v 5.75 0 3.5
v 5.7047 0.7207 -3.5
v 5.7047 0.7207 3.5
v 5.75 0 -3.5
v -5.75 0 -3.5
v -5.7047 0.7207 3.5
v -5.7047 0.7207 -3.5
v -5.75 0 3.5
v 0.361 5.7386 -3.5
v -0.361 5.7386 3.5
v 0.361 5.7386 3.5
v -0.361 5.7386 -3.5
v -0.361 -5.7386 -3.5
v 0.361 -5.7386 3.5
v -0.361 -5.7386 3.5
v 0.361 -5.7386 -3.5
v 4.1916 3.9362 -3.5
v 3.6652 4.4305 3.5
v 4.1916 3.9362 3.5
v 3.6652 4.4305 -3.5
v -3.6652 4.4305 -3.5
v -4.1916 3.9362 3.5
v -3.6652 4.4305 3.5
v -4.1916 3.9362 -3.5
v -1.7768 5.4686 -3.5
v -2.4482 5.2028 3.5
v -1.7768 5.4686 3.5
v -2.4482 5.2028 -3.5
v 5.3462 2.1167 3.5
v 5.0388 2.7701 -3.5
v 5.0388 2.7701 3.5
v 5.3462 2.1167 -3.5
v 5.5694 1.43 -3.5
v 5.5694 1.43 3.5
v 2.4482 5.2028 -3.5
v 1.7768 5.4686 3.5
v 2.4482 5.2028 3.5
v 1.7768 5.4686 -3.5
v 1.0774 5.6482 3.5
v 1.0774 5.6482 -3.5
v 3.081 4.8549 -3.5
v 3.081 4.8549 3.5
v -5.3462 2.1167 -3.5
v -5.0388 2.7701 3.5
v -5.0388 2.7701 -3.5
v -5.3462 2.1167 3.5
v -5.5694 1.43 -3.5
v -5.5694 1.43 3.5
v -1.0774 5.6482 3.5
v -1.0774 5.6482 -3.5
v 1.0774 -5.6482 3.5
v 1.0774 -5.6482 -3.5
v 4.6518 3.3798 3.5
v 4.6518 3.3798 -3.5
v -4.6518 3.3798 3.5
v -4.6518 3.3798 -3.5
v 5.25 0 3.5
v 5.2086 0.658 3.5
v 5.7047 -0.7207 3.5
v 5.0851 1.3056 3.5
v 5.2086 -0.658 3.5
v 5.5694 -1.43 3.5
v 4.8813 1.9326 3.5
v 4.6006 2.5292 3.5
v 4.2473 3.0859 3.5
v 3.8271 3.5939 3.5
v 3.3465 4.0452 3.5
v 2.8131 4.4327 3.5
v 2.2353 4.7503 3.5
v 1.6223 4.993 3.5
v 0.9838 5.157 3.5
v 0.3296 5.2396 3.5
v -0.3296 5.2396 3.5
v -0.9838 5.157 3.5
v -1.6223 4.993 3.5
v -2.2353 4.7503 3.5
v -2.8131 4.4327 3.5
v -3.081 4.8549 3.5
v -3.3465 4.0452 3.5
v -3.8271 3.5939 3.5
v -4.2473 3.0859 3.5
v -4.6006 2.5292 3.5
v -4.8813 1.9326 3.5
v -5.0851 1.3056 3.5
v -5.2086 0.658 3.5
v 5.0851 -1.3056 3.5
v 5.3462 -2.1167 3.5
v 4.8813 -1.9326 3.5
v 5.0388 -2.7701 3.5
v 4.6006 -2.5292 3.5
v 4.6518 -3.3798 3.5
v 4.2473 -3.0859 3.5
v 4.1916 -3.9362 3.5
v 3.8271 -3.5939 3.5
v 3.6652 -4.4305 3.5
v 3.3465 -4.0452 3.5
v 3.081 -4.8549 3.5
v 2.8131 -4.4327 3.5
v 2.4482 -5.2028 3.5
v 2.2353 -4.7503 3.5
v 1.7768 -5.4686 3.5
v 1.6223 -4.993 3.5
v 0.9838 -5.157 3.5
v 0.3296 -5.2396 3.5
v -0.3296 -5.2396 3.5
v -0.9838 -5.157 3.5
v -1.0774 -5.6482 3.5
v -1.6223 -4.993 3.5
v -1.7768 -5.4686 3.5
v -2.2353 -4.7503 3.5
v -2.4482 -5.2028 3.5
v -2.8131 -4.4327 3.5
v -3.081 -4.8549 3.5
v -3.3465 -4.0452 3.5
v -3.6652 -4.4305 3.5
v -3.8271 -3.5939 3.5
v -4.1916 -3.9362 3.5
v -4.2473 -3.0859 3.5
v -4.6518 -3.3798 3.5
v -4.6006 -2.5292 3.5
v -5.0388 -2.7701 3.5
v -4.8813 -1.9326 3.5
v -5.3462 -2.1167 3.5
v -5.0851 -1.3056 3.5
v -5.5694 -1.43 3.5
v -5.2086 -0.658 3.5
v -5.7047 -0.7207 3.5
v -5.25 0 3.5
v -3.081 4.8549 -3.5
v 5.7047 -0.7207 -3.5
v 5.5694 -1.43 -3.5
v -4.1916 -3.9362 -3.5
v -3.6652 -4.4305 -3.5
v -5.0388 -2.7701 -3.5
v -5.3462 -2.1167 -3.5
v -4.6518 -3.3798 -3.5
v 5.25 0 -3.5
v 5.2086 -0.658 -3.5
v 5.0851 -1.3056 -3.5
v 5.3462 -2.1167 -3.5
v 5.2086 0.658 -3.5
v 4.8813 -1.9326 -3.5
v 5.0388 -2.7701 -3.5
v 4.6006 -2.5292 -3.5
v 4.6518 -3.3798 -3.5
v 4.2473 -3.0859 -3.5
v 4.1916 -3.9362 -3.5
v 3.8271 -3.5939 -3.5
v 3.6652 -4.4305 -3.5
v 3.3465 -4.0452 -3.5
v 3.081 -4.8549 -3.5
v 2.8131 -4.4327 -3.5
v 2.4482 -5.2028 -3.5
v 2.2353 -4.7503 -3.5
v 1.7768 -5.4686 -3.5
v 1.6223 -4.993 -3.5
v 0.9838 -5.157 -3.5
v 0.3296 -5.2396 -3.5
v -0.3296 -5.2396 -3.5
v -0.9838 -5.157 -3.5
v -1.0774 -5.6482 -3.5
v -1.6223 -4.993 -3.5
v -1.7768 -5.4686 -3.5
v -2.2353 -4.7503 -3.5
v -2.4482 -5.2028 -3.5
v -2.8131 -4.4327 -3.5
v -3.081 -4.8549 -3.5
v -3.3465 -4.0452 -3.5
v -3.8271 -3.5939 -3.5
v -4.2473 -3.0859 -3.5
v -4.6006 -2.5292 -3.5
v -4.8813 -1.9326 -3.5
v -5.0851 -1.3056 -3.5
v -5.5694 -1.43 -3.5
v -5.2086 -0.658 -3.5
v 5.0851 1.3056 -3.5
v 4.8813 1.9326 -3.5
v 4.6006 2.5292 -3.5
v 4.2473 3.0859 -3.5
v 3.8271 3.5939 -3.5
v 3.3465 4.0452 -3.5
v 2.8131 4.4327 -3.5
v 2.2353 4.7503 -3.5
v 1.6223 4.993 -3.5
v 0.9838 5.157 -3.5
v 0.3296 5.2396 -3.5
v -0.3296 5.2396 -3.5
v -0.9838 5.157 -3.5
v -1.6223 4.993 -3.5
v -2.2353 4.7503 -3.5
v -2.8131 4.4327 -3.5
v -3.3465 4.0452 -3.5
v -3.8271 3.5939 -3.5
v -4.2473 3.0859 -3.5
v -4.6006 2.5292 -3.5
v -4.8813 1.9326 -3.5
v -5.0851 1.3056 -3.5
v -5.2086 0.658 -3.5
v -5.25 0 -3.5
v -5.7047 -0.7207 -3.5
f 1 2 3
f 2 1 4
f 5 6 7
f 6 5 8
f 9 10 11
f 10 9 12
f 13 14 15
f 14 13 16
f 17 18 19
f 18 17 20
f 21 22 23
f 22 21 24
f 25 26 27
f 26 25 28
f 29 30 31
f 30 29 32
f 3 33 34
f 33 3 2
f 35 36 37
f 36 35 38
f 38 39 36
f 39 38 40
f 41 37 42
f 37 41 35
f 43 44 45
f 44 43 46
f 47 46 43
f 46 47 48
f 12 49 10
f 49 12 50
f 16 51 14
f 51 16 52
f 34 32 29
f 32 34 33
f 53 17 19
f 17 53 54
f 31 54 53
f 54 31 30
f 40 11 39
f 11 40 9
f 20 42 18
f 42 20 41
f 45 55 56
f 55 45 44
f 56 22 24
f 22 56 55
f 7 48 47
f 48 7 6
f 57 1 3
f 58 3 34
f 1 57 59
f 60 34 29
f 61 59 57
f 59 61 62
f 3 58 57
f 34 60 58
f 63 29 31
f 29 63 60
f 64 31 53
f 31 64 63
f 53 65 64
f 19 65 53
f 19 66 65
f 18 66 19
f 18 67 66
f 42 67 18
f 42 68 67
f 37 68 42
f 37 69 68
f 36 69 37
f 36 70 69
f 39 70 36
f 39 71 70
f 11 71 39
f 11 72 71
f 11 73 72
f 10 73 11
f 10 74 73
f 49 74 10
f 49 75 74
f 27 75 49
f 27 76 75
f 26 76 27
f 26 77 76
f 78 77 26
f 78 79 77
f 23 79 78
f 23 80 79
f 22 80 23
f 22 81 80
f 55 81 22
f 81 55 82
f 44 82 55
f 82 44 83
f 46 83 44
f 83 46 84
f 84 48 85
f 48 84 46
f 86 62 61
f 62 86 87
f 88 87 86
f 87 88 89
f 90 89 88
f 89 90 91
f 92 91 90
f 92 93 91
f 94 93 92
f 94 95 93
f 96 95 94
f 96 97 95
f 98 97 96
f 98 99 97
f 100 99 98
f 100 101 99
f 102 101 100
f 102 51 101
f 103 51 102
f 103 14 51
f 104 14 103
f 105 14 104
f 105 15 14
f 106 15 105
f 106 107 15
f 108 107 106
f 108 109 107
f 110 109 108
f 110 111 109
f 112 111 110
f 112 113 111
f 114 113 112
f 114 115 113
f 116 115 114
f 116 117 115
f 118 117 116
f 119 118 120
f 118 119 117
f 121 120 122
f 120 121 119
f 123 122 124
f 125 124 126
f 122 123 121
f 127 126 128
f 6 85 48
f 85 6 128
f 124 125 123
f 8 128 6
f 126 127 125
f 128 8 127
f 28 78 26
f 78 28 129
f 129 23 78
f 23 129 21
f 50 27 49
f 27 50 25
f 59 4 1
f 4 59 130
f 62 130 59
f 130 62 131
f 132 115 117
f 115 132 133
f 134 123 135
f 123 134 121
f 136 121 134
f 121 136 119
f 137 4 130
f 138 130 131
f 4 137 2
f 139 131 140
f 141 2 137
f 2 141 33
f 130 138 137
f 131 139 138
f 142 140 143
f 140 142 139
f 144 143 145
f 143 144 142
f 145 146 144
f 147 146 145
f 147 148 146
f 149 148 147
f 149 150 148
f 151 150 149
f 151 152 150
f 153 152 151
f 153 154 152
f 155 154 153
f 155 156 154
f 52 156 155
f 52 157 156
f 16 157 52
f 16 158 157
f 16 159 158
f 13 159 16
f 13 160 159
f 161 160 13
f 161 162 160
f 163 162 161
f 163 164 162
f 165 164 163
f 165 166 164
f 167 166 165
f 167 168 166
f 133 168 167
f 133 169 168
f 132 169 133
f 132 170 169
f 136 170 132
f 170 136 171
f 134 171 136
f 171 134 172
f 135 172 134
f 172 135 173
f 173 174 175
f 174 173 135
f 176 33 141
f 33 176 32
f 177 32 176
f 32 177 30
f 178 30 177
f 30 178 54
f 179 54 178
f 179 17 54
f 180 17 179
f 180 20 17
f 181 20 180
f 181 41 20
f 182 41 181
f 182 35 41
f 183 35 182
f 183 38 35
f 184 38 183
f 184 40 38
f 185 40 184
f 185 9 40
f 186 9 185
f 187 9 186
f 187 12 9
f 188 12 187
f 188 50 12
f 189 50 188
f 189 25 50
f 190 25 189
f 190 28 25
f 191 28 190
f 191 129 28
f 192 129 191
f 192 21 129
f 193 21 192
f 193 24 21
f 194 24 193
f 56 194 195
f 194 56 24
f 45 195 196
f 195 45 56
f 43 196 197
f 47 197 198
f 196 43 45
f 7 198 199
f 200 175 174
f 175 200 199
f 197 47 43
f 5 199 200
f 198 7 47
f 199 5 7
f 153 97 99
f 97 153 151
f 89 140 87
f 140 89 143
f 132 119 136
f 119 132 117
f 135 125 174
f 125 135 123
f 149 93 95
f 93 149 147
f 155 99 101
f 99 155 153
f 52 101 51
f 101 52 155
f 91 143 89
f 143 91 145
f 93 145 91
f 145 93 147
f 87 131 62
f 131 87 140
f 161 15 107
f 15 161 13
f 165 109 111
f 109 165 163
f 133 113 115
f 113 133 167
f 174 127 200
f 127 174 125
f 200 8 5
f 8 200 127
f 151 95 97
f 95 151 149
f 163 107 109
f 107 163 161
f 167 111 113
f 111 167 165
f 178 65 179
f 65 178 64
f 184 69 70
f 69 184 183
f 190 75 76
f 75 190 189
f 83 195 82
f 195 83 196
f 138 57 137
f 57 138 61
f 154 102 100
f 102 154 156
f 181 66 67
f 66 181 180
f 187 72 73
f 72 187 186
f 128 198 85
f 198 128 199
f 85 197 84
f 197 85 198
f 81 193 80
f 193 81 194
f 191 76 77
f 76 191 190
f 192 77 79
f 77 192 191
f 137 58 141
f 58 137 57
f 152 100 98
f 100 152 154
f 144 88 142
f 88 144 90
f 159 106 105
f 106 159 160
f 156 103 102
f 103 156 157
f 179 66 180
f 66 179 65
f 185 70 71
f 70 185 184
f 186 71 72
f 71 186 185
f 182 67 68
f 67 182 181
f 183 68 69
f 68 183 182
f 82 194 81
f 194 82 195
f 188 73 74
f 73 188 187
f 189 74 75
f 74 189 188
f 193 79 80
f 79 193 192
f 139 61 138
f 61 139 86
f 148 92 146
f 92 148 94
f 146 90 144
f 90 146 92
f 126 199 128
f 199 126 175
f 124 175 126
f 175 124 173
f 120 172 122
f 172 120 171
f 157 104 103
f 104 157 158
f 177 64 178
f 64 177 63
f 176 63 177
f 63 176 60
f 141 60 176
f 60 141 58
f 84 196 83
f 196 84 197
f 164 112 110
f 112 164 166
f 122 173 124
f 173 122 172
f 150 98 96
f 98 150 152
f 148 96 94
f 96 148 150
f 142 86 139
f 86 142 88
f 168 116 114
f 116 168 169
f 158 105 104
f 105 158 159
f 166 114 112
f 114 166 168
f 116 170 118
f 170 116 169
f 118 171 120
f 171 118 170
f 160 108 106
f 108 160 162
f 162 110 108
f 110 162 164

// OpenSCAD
$fn = 50;


difference() {
	union() {
		translate(v = [0, 0, -3.5000000000]) {
			cylinder(h = 7, r = 5.7500000000);
		}
	}
	union() {
		translate(v = [0, 0, -100.0000000000]) {
			cylinder(h = 200, r = 5.2500000000);
		}
	}
}
